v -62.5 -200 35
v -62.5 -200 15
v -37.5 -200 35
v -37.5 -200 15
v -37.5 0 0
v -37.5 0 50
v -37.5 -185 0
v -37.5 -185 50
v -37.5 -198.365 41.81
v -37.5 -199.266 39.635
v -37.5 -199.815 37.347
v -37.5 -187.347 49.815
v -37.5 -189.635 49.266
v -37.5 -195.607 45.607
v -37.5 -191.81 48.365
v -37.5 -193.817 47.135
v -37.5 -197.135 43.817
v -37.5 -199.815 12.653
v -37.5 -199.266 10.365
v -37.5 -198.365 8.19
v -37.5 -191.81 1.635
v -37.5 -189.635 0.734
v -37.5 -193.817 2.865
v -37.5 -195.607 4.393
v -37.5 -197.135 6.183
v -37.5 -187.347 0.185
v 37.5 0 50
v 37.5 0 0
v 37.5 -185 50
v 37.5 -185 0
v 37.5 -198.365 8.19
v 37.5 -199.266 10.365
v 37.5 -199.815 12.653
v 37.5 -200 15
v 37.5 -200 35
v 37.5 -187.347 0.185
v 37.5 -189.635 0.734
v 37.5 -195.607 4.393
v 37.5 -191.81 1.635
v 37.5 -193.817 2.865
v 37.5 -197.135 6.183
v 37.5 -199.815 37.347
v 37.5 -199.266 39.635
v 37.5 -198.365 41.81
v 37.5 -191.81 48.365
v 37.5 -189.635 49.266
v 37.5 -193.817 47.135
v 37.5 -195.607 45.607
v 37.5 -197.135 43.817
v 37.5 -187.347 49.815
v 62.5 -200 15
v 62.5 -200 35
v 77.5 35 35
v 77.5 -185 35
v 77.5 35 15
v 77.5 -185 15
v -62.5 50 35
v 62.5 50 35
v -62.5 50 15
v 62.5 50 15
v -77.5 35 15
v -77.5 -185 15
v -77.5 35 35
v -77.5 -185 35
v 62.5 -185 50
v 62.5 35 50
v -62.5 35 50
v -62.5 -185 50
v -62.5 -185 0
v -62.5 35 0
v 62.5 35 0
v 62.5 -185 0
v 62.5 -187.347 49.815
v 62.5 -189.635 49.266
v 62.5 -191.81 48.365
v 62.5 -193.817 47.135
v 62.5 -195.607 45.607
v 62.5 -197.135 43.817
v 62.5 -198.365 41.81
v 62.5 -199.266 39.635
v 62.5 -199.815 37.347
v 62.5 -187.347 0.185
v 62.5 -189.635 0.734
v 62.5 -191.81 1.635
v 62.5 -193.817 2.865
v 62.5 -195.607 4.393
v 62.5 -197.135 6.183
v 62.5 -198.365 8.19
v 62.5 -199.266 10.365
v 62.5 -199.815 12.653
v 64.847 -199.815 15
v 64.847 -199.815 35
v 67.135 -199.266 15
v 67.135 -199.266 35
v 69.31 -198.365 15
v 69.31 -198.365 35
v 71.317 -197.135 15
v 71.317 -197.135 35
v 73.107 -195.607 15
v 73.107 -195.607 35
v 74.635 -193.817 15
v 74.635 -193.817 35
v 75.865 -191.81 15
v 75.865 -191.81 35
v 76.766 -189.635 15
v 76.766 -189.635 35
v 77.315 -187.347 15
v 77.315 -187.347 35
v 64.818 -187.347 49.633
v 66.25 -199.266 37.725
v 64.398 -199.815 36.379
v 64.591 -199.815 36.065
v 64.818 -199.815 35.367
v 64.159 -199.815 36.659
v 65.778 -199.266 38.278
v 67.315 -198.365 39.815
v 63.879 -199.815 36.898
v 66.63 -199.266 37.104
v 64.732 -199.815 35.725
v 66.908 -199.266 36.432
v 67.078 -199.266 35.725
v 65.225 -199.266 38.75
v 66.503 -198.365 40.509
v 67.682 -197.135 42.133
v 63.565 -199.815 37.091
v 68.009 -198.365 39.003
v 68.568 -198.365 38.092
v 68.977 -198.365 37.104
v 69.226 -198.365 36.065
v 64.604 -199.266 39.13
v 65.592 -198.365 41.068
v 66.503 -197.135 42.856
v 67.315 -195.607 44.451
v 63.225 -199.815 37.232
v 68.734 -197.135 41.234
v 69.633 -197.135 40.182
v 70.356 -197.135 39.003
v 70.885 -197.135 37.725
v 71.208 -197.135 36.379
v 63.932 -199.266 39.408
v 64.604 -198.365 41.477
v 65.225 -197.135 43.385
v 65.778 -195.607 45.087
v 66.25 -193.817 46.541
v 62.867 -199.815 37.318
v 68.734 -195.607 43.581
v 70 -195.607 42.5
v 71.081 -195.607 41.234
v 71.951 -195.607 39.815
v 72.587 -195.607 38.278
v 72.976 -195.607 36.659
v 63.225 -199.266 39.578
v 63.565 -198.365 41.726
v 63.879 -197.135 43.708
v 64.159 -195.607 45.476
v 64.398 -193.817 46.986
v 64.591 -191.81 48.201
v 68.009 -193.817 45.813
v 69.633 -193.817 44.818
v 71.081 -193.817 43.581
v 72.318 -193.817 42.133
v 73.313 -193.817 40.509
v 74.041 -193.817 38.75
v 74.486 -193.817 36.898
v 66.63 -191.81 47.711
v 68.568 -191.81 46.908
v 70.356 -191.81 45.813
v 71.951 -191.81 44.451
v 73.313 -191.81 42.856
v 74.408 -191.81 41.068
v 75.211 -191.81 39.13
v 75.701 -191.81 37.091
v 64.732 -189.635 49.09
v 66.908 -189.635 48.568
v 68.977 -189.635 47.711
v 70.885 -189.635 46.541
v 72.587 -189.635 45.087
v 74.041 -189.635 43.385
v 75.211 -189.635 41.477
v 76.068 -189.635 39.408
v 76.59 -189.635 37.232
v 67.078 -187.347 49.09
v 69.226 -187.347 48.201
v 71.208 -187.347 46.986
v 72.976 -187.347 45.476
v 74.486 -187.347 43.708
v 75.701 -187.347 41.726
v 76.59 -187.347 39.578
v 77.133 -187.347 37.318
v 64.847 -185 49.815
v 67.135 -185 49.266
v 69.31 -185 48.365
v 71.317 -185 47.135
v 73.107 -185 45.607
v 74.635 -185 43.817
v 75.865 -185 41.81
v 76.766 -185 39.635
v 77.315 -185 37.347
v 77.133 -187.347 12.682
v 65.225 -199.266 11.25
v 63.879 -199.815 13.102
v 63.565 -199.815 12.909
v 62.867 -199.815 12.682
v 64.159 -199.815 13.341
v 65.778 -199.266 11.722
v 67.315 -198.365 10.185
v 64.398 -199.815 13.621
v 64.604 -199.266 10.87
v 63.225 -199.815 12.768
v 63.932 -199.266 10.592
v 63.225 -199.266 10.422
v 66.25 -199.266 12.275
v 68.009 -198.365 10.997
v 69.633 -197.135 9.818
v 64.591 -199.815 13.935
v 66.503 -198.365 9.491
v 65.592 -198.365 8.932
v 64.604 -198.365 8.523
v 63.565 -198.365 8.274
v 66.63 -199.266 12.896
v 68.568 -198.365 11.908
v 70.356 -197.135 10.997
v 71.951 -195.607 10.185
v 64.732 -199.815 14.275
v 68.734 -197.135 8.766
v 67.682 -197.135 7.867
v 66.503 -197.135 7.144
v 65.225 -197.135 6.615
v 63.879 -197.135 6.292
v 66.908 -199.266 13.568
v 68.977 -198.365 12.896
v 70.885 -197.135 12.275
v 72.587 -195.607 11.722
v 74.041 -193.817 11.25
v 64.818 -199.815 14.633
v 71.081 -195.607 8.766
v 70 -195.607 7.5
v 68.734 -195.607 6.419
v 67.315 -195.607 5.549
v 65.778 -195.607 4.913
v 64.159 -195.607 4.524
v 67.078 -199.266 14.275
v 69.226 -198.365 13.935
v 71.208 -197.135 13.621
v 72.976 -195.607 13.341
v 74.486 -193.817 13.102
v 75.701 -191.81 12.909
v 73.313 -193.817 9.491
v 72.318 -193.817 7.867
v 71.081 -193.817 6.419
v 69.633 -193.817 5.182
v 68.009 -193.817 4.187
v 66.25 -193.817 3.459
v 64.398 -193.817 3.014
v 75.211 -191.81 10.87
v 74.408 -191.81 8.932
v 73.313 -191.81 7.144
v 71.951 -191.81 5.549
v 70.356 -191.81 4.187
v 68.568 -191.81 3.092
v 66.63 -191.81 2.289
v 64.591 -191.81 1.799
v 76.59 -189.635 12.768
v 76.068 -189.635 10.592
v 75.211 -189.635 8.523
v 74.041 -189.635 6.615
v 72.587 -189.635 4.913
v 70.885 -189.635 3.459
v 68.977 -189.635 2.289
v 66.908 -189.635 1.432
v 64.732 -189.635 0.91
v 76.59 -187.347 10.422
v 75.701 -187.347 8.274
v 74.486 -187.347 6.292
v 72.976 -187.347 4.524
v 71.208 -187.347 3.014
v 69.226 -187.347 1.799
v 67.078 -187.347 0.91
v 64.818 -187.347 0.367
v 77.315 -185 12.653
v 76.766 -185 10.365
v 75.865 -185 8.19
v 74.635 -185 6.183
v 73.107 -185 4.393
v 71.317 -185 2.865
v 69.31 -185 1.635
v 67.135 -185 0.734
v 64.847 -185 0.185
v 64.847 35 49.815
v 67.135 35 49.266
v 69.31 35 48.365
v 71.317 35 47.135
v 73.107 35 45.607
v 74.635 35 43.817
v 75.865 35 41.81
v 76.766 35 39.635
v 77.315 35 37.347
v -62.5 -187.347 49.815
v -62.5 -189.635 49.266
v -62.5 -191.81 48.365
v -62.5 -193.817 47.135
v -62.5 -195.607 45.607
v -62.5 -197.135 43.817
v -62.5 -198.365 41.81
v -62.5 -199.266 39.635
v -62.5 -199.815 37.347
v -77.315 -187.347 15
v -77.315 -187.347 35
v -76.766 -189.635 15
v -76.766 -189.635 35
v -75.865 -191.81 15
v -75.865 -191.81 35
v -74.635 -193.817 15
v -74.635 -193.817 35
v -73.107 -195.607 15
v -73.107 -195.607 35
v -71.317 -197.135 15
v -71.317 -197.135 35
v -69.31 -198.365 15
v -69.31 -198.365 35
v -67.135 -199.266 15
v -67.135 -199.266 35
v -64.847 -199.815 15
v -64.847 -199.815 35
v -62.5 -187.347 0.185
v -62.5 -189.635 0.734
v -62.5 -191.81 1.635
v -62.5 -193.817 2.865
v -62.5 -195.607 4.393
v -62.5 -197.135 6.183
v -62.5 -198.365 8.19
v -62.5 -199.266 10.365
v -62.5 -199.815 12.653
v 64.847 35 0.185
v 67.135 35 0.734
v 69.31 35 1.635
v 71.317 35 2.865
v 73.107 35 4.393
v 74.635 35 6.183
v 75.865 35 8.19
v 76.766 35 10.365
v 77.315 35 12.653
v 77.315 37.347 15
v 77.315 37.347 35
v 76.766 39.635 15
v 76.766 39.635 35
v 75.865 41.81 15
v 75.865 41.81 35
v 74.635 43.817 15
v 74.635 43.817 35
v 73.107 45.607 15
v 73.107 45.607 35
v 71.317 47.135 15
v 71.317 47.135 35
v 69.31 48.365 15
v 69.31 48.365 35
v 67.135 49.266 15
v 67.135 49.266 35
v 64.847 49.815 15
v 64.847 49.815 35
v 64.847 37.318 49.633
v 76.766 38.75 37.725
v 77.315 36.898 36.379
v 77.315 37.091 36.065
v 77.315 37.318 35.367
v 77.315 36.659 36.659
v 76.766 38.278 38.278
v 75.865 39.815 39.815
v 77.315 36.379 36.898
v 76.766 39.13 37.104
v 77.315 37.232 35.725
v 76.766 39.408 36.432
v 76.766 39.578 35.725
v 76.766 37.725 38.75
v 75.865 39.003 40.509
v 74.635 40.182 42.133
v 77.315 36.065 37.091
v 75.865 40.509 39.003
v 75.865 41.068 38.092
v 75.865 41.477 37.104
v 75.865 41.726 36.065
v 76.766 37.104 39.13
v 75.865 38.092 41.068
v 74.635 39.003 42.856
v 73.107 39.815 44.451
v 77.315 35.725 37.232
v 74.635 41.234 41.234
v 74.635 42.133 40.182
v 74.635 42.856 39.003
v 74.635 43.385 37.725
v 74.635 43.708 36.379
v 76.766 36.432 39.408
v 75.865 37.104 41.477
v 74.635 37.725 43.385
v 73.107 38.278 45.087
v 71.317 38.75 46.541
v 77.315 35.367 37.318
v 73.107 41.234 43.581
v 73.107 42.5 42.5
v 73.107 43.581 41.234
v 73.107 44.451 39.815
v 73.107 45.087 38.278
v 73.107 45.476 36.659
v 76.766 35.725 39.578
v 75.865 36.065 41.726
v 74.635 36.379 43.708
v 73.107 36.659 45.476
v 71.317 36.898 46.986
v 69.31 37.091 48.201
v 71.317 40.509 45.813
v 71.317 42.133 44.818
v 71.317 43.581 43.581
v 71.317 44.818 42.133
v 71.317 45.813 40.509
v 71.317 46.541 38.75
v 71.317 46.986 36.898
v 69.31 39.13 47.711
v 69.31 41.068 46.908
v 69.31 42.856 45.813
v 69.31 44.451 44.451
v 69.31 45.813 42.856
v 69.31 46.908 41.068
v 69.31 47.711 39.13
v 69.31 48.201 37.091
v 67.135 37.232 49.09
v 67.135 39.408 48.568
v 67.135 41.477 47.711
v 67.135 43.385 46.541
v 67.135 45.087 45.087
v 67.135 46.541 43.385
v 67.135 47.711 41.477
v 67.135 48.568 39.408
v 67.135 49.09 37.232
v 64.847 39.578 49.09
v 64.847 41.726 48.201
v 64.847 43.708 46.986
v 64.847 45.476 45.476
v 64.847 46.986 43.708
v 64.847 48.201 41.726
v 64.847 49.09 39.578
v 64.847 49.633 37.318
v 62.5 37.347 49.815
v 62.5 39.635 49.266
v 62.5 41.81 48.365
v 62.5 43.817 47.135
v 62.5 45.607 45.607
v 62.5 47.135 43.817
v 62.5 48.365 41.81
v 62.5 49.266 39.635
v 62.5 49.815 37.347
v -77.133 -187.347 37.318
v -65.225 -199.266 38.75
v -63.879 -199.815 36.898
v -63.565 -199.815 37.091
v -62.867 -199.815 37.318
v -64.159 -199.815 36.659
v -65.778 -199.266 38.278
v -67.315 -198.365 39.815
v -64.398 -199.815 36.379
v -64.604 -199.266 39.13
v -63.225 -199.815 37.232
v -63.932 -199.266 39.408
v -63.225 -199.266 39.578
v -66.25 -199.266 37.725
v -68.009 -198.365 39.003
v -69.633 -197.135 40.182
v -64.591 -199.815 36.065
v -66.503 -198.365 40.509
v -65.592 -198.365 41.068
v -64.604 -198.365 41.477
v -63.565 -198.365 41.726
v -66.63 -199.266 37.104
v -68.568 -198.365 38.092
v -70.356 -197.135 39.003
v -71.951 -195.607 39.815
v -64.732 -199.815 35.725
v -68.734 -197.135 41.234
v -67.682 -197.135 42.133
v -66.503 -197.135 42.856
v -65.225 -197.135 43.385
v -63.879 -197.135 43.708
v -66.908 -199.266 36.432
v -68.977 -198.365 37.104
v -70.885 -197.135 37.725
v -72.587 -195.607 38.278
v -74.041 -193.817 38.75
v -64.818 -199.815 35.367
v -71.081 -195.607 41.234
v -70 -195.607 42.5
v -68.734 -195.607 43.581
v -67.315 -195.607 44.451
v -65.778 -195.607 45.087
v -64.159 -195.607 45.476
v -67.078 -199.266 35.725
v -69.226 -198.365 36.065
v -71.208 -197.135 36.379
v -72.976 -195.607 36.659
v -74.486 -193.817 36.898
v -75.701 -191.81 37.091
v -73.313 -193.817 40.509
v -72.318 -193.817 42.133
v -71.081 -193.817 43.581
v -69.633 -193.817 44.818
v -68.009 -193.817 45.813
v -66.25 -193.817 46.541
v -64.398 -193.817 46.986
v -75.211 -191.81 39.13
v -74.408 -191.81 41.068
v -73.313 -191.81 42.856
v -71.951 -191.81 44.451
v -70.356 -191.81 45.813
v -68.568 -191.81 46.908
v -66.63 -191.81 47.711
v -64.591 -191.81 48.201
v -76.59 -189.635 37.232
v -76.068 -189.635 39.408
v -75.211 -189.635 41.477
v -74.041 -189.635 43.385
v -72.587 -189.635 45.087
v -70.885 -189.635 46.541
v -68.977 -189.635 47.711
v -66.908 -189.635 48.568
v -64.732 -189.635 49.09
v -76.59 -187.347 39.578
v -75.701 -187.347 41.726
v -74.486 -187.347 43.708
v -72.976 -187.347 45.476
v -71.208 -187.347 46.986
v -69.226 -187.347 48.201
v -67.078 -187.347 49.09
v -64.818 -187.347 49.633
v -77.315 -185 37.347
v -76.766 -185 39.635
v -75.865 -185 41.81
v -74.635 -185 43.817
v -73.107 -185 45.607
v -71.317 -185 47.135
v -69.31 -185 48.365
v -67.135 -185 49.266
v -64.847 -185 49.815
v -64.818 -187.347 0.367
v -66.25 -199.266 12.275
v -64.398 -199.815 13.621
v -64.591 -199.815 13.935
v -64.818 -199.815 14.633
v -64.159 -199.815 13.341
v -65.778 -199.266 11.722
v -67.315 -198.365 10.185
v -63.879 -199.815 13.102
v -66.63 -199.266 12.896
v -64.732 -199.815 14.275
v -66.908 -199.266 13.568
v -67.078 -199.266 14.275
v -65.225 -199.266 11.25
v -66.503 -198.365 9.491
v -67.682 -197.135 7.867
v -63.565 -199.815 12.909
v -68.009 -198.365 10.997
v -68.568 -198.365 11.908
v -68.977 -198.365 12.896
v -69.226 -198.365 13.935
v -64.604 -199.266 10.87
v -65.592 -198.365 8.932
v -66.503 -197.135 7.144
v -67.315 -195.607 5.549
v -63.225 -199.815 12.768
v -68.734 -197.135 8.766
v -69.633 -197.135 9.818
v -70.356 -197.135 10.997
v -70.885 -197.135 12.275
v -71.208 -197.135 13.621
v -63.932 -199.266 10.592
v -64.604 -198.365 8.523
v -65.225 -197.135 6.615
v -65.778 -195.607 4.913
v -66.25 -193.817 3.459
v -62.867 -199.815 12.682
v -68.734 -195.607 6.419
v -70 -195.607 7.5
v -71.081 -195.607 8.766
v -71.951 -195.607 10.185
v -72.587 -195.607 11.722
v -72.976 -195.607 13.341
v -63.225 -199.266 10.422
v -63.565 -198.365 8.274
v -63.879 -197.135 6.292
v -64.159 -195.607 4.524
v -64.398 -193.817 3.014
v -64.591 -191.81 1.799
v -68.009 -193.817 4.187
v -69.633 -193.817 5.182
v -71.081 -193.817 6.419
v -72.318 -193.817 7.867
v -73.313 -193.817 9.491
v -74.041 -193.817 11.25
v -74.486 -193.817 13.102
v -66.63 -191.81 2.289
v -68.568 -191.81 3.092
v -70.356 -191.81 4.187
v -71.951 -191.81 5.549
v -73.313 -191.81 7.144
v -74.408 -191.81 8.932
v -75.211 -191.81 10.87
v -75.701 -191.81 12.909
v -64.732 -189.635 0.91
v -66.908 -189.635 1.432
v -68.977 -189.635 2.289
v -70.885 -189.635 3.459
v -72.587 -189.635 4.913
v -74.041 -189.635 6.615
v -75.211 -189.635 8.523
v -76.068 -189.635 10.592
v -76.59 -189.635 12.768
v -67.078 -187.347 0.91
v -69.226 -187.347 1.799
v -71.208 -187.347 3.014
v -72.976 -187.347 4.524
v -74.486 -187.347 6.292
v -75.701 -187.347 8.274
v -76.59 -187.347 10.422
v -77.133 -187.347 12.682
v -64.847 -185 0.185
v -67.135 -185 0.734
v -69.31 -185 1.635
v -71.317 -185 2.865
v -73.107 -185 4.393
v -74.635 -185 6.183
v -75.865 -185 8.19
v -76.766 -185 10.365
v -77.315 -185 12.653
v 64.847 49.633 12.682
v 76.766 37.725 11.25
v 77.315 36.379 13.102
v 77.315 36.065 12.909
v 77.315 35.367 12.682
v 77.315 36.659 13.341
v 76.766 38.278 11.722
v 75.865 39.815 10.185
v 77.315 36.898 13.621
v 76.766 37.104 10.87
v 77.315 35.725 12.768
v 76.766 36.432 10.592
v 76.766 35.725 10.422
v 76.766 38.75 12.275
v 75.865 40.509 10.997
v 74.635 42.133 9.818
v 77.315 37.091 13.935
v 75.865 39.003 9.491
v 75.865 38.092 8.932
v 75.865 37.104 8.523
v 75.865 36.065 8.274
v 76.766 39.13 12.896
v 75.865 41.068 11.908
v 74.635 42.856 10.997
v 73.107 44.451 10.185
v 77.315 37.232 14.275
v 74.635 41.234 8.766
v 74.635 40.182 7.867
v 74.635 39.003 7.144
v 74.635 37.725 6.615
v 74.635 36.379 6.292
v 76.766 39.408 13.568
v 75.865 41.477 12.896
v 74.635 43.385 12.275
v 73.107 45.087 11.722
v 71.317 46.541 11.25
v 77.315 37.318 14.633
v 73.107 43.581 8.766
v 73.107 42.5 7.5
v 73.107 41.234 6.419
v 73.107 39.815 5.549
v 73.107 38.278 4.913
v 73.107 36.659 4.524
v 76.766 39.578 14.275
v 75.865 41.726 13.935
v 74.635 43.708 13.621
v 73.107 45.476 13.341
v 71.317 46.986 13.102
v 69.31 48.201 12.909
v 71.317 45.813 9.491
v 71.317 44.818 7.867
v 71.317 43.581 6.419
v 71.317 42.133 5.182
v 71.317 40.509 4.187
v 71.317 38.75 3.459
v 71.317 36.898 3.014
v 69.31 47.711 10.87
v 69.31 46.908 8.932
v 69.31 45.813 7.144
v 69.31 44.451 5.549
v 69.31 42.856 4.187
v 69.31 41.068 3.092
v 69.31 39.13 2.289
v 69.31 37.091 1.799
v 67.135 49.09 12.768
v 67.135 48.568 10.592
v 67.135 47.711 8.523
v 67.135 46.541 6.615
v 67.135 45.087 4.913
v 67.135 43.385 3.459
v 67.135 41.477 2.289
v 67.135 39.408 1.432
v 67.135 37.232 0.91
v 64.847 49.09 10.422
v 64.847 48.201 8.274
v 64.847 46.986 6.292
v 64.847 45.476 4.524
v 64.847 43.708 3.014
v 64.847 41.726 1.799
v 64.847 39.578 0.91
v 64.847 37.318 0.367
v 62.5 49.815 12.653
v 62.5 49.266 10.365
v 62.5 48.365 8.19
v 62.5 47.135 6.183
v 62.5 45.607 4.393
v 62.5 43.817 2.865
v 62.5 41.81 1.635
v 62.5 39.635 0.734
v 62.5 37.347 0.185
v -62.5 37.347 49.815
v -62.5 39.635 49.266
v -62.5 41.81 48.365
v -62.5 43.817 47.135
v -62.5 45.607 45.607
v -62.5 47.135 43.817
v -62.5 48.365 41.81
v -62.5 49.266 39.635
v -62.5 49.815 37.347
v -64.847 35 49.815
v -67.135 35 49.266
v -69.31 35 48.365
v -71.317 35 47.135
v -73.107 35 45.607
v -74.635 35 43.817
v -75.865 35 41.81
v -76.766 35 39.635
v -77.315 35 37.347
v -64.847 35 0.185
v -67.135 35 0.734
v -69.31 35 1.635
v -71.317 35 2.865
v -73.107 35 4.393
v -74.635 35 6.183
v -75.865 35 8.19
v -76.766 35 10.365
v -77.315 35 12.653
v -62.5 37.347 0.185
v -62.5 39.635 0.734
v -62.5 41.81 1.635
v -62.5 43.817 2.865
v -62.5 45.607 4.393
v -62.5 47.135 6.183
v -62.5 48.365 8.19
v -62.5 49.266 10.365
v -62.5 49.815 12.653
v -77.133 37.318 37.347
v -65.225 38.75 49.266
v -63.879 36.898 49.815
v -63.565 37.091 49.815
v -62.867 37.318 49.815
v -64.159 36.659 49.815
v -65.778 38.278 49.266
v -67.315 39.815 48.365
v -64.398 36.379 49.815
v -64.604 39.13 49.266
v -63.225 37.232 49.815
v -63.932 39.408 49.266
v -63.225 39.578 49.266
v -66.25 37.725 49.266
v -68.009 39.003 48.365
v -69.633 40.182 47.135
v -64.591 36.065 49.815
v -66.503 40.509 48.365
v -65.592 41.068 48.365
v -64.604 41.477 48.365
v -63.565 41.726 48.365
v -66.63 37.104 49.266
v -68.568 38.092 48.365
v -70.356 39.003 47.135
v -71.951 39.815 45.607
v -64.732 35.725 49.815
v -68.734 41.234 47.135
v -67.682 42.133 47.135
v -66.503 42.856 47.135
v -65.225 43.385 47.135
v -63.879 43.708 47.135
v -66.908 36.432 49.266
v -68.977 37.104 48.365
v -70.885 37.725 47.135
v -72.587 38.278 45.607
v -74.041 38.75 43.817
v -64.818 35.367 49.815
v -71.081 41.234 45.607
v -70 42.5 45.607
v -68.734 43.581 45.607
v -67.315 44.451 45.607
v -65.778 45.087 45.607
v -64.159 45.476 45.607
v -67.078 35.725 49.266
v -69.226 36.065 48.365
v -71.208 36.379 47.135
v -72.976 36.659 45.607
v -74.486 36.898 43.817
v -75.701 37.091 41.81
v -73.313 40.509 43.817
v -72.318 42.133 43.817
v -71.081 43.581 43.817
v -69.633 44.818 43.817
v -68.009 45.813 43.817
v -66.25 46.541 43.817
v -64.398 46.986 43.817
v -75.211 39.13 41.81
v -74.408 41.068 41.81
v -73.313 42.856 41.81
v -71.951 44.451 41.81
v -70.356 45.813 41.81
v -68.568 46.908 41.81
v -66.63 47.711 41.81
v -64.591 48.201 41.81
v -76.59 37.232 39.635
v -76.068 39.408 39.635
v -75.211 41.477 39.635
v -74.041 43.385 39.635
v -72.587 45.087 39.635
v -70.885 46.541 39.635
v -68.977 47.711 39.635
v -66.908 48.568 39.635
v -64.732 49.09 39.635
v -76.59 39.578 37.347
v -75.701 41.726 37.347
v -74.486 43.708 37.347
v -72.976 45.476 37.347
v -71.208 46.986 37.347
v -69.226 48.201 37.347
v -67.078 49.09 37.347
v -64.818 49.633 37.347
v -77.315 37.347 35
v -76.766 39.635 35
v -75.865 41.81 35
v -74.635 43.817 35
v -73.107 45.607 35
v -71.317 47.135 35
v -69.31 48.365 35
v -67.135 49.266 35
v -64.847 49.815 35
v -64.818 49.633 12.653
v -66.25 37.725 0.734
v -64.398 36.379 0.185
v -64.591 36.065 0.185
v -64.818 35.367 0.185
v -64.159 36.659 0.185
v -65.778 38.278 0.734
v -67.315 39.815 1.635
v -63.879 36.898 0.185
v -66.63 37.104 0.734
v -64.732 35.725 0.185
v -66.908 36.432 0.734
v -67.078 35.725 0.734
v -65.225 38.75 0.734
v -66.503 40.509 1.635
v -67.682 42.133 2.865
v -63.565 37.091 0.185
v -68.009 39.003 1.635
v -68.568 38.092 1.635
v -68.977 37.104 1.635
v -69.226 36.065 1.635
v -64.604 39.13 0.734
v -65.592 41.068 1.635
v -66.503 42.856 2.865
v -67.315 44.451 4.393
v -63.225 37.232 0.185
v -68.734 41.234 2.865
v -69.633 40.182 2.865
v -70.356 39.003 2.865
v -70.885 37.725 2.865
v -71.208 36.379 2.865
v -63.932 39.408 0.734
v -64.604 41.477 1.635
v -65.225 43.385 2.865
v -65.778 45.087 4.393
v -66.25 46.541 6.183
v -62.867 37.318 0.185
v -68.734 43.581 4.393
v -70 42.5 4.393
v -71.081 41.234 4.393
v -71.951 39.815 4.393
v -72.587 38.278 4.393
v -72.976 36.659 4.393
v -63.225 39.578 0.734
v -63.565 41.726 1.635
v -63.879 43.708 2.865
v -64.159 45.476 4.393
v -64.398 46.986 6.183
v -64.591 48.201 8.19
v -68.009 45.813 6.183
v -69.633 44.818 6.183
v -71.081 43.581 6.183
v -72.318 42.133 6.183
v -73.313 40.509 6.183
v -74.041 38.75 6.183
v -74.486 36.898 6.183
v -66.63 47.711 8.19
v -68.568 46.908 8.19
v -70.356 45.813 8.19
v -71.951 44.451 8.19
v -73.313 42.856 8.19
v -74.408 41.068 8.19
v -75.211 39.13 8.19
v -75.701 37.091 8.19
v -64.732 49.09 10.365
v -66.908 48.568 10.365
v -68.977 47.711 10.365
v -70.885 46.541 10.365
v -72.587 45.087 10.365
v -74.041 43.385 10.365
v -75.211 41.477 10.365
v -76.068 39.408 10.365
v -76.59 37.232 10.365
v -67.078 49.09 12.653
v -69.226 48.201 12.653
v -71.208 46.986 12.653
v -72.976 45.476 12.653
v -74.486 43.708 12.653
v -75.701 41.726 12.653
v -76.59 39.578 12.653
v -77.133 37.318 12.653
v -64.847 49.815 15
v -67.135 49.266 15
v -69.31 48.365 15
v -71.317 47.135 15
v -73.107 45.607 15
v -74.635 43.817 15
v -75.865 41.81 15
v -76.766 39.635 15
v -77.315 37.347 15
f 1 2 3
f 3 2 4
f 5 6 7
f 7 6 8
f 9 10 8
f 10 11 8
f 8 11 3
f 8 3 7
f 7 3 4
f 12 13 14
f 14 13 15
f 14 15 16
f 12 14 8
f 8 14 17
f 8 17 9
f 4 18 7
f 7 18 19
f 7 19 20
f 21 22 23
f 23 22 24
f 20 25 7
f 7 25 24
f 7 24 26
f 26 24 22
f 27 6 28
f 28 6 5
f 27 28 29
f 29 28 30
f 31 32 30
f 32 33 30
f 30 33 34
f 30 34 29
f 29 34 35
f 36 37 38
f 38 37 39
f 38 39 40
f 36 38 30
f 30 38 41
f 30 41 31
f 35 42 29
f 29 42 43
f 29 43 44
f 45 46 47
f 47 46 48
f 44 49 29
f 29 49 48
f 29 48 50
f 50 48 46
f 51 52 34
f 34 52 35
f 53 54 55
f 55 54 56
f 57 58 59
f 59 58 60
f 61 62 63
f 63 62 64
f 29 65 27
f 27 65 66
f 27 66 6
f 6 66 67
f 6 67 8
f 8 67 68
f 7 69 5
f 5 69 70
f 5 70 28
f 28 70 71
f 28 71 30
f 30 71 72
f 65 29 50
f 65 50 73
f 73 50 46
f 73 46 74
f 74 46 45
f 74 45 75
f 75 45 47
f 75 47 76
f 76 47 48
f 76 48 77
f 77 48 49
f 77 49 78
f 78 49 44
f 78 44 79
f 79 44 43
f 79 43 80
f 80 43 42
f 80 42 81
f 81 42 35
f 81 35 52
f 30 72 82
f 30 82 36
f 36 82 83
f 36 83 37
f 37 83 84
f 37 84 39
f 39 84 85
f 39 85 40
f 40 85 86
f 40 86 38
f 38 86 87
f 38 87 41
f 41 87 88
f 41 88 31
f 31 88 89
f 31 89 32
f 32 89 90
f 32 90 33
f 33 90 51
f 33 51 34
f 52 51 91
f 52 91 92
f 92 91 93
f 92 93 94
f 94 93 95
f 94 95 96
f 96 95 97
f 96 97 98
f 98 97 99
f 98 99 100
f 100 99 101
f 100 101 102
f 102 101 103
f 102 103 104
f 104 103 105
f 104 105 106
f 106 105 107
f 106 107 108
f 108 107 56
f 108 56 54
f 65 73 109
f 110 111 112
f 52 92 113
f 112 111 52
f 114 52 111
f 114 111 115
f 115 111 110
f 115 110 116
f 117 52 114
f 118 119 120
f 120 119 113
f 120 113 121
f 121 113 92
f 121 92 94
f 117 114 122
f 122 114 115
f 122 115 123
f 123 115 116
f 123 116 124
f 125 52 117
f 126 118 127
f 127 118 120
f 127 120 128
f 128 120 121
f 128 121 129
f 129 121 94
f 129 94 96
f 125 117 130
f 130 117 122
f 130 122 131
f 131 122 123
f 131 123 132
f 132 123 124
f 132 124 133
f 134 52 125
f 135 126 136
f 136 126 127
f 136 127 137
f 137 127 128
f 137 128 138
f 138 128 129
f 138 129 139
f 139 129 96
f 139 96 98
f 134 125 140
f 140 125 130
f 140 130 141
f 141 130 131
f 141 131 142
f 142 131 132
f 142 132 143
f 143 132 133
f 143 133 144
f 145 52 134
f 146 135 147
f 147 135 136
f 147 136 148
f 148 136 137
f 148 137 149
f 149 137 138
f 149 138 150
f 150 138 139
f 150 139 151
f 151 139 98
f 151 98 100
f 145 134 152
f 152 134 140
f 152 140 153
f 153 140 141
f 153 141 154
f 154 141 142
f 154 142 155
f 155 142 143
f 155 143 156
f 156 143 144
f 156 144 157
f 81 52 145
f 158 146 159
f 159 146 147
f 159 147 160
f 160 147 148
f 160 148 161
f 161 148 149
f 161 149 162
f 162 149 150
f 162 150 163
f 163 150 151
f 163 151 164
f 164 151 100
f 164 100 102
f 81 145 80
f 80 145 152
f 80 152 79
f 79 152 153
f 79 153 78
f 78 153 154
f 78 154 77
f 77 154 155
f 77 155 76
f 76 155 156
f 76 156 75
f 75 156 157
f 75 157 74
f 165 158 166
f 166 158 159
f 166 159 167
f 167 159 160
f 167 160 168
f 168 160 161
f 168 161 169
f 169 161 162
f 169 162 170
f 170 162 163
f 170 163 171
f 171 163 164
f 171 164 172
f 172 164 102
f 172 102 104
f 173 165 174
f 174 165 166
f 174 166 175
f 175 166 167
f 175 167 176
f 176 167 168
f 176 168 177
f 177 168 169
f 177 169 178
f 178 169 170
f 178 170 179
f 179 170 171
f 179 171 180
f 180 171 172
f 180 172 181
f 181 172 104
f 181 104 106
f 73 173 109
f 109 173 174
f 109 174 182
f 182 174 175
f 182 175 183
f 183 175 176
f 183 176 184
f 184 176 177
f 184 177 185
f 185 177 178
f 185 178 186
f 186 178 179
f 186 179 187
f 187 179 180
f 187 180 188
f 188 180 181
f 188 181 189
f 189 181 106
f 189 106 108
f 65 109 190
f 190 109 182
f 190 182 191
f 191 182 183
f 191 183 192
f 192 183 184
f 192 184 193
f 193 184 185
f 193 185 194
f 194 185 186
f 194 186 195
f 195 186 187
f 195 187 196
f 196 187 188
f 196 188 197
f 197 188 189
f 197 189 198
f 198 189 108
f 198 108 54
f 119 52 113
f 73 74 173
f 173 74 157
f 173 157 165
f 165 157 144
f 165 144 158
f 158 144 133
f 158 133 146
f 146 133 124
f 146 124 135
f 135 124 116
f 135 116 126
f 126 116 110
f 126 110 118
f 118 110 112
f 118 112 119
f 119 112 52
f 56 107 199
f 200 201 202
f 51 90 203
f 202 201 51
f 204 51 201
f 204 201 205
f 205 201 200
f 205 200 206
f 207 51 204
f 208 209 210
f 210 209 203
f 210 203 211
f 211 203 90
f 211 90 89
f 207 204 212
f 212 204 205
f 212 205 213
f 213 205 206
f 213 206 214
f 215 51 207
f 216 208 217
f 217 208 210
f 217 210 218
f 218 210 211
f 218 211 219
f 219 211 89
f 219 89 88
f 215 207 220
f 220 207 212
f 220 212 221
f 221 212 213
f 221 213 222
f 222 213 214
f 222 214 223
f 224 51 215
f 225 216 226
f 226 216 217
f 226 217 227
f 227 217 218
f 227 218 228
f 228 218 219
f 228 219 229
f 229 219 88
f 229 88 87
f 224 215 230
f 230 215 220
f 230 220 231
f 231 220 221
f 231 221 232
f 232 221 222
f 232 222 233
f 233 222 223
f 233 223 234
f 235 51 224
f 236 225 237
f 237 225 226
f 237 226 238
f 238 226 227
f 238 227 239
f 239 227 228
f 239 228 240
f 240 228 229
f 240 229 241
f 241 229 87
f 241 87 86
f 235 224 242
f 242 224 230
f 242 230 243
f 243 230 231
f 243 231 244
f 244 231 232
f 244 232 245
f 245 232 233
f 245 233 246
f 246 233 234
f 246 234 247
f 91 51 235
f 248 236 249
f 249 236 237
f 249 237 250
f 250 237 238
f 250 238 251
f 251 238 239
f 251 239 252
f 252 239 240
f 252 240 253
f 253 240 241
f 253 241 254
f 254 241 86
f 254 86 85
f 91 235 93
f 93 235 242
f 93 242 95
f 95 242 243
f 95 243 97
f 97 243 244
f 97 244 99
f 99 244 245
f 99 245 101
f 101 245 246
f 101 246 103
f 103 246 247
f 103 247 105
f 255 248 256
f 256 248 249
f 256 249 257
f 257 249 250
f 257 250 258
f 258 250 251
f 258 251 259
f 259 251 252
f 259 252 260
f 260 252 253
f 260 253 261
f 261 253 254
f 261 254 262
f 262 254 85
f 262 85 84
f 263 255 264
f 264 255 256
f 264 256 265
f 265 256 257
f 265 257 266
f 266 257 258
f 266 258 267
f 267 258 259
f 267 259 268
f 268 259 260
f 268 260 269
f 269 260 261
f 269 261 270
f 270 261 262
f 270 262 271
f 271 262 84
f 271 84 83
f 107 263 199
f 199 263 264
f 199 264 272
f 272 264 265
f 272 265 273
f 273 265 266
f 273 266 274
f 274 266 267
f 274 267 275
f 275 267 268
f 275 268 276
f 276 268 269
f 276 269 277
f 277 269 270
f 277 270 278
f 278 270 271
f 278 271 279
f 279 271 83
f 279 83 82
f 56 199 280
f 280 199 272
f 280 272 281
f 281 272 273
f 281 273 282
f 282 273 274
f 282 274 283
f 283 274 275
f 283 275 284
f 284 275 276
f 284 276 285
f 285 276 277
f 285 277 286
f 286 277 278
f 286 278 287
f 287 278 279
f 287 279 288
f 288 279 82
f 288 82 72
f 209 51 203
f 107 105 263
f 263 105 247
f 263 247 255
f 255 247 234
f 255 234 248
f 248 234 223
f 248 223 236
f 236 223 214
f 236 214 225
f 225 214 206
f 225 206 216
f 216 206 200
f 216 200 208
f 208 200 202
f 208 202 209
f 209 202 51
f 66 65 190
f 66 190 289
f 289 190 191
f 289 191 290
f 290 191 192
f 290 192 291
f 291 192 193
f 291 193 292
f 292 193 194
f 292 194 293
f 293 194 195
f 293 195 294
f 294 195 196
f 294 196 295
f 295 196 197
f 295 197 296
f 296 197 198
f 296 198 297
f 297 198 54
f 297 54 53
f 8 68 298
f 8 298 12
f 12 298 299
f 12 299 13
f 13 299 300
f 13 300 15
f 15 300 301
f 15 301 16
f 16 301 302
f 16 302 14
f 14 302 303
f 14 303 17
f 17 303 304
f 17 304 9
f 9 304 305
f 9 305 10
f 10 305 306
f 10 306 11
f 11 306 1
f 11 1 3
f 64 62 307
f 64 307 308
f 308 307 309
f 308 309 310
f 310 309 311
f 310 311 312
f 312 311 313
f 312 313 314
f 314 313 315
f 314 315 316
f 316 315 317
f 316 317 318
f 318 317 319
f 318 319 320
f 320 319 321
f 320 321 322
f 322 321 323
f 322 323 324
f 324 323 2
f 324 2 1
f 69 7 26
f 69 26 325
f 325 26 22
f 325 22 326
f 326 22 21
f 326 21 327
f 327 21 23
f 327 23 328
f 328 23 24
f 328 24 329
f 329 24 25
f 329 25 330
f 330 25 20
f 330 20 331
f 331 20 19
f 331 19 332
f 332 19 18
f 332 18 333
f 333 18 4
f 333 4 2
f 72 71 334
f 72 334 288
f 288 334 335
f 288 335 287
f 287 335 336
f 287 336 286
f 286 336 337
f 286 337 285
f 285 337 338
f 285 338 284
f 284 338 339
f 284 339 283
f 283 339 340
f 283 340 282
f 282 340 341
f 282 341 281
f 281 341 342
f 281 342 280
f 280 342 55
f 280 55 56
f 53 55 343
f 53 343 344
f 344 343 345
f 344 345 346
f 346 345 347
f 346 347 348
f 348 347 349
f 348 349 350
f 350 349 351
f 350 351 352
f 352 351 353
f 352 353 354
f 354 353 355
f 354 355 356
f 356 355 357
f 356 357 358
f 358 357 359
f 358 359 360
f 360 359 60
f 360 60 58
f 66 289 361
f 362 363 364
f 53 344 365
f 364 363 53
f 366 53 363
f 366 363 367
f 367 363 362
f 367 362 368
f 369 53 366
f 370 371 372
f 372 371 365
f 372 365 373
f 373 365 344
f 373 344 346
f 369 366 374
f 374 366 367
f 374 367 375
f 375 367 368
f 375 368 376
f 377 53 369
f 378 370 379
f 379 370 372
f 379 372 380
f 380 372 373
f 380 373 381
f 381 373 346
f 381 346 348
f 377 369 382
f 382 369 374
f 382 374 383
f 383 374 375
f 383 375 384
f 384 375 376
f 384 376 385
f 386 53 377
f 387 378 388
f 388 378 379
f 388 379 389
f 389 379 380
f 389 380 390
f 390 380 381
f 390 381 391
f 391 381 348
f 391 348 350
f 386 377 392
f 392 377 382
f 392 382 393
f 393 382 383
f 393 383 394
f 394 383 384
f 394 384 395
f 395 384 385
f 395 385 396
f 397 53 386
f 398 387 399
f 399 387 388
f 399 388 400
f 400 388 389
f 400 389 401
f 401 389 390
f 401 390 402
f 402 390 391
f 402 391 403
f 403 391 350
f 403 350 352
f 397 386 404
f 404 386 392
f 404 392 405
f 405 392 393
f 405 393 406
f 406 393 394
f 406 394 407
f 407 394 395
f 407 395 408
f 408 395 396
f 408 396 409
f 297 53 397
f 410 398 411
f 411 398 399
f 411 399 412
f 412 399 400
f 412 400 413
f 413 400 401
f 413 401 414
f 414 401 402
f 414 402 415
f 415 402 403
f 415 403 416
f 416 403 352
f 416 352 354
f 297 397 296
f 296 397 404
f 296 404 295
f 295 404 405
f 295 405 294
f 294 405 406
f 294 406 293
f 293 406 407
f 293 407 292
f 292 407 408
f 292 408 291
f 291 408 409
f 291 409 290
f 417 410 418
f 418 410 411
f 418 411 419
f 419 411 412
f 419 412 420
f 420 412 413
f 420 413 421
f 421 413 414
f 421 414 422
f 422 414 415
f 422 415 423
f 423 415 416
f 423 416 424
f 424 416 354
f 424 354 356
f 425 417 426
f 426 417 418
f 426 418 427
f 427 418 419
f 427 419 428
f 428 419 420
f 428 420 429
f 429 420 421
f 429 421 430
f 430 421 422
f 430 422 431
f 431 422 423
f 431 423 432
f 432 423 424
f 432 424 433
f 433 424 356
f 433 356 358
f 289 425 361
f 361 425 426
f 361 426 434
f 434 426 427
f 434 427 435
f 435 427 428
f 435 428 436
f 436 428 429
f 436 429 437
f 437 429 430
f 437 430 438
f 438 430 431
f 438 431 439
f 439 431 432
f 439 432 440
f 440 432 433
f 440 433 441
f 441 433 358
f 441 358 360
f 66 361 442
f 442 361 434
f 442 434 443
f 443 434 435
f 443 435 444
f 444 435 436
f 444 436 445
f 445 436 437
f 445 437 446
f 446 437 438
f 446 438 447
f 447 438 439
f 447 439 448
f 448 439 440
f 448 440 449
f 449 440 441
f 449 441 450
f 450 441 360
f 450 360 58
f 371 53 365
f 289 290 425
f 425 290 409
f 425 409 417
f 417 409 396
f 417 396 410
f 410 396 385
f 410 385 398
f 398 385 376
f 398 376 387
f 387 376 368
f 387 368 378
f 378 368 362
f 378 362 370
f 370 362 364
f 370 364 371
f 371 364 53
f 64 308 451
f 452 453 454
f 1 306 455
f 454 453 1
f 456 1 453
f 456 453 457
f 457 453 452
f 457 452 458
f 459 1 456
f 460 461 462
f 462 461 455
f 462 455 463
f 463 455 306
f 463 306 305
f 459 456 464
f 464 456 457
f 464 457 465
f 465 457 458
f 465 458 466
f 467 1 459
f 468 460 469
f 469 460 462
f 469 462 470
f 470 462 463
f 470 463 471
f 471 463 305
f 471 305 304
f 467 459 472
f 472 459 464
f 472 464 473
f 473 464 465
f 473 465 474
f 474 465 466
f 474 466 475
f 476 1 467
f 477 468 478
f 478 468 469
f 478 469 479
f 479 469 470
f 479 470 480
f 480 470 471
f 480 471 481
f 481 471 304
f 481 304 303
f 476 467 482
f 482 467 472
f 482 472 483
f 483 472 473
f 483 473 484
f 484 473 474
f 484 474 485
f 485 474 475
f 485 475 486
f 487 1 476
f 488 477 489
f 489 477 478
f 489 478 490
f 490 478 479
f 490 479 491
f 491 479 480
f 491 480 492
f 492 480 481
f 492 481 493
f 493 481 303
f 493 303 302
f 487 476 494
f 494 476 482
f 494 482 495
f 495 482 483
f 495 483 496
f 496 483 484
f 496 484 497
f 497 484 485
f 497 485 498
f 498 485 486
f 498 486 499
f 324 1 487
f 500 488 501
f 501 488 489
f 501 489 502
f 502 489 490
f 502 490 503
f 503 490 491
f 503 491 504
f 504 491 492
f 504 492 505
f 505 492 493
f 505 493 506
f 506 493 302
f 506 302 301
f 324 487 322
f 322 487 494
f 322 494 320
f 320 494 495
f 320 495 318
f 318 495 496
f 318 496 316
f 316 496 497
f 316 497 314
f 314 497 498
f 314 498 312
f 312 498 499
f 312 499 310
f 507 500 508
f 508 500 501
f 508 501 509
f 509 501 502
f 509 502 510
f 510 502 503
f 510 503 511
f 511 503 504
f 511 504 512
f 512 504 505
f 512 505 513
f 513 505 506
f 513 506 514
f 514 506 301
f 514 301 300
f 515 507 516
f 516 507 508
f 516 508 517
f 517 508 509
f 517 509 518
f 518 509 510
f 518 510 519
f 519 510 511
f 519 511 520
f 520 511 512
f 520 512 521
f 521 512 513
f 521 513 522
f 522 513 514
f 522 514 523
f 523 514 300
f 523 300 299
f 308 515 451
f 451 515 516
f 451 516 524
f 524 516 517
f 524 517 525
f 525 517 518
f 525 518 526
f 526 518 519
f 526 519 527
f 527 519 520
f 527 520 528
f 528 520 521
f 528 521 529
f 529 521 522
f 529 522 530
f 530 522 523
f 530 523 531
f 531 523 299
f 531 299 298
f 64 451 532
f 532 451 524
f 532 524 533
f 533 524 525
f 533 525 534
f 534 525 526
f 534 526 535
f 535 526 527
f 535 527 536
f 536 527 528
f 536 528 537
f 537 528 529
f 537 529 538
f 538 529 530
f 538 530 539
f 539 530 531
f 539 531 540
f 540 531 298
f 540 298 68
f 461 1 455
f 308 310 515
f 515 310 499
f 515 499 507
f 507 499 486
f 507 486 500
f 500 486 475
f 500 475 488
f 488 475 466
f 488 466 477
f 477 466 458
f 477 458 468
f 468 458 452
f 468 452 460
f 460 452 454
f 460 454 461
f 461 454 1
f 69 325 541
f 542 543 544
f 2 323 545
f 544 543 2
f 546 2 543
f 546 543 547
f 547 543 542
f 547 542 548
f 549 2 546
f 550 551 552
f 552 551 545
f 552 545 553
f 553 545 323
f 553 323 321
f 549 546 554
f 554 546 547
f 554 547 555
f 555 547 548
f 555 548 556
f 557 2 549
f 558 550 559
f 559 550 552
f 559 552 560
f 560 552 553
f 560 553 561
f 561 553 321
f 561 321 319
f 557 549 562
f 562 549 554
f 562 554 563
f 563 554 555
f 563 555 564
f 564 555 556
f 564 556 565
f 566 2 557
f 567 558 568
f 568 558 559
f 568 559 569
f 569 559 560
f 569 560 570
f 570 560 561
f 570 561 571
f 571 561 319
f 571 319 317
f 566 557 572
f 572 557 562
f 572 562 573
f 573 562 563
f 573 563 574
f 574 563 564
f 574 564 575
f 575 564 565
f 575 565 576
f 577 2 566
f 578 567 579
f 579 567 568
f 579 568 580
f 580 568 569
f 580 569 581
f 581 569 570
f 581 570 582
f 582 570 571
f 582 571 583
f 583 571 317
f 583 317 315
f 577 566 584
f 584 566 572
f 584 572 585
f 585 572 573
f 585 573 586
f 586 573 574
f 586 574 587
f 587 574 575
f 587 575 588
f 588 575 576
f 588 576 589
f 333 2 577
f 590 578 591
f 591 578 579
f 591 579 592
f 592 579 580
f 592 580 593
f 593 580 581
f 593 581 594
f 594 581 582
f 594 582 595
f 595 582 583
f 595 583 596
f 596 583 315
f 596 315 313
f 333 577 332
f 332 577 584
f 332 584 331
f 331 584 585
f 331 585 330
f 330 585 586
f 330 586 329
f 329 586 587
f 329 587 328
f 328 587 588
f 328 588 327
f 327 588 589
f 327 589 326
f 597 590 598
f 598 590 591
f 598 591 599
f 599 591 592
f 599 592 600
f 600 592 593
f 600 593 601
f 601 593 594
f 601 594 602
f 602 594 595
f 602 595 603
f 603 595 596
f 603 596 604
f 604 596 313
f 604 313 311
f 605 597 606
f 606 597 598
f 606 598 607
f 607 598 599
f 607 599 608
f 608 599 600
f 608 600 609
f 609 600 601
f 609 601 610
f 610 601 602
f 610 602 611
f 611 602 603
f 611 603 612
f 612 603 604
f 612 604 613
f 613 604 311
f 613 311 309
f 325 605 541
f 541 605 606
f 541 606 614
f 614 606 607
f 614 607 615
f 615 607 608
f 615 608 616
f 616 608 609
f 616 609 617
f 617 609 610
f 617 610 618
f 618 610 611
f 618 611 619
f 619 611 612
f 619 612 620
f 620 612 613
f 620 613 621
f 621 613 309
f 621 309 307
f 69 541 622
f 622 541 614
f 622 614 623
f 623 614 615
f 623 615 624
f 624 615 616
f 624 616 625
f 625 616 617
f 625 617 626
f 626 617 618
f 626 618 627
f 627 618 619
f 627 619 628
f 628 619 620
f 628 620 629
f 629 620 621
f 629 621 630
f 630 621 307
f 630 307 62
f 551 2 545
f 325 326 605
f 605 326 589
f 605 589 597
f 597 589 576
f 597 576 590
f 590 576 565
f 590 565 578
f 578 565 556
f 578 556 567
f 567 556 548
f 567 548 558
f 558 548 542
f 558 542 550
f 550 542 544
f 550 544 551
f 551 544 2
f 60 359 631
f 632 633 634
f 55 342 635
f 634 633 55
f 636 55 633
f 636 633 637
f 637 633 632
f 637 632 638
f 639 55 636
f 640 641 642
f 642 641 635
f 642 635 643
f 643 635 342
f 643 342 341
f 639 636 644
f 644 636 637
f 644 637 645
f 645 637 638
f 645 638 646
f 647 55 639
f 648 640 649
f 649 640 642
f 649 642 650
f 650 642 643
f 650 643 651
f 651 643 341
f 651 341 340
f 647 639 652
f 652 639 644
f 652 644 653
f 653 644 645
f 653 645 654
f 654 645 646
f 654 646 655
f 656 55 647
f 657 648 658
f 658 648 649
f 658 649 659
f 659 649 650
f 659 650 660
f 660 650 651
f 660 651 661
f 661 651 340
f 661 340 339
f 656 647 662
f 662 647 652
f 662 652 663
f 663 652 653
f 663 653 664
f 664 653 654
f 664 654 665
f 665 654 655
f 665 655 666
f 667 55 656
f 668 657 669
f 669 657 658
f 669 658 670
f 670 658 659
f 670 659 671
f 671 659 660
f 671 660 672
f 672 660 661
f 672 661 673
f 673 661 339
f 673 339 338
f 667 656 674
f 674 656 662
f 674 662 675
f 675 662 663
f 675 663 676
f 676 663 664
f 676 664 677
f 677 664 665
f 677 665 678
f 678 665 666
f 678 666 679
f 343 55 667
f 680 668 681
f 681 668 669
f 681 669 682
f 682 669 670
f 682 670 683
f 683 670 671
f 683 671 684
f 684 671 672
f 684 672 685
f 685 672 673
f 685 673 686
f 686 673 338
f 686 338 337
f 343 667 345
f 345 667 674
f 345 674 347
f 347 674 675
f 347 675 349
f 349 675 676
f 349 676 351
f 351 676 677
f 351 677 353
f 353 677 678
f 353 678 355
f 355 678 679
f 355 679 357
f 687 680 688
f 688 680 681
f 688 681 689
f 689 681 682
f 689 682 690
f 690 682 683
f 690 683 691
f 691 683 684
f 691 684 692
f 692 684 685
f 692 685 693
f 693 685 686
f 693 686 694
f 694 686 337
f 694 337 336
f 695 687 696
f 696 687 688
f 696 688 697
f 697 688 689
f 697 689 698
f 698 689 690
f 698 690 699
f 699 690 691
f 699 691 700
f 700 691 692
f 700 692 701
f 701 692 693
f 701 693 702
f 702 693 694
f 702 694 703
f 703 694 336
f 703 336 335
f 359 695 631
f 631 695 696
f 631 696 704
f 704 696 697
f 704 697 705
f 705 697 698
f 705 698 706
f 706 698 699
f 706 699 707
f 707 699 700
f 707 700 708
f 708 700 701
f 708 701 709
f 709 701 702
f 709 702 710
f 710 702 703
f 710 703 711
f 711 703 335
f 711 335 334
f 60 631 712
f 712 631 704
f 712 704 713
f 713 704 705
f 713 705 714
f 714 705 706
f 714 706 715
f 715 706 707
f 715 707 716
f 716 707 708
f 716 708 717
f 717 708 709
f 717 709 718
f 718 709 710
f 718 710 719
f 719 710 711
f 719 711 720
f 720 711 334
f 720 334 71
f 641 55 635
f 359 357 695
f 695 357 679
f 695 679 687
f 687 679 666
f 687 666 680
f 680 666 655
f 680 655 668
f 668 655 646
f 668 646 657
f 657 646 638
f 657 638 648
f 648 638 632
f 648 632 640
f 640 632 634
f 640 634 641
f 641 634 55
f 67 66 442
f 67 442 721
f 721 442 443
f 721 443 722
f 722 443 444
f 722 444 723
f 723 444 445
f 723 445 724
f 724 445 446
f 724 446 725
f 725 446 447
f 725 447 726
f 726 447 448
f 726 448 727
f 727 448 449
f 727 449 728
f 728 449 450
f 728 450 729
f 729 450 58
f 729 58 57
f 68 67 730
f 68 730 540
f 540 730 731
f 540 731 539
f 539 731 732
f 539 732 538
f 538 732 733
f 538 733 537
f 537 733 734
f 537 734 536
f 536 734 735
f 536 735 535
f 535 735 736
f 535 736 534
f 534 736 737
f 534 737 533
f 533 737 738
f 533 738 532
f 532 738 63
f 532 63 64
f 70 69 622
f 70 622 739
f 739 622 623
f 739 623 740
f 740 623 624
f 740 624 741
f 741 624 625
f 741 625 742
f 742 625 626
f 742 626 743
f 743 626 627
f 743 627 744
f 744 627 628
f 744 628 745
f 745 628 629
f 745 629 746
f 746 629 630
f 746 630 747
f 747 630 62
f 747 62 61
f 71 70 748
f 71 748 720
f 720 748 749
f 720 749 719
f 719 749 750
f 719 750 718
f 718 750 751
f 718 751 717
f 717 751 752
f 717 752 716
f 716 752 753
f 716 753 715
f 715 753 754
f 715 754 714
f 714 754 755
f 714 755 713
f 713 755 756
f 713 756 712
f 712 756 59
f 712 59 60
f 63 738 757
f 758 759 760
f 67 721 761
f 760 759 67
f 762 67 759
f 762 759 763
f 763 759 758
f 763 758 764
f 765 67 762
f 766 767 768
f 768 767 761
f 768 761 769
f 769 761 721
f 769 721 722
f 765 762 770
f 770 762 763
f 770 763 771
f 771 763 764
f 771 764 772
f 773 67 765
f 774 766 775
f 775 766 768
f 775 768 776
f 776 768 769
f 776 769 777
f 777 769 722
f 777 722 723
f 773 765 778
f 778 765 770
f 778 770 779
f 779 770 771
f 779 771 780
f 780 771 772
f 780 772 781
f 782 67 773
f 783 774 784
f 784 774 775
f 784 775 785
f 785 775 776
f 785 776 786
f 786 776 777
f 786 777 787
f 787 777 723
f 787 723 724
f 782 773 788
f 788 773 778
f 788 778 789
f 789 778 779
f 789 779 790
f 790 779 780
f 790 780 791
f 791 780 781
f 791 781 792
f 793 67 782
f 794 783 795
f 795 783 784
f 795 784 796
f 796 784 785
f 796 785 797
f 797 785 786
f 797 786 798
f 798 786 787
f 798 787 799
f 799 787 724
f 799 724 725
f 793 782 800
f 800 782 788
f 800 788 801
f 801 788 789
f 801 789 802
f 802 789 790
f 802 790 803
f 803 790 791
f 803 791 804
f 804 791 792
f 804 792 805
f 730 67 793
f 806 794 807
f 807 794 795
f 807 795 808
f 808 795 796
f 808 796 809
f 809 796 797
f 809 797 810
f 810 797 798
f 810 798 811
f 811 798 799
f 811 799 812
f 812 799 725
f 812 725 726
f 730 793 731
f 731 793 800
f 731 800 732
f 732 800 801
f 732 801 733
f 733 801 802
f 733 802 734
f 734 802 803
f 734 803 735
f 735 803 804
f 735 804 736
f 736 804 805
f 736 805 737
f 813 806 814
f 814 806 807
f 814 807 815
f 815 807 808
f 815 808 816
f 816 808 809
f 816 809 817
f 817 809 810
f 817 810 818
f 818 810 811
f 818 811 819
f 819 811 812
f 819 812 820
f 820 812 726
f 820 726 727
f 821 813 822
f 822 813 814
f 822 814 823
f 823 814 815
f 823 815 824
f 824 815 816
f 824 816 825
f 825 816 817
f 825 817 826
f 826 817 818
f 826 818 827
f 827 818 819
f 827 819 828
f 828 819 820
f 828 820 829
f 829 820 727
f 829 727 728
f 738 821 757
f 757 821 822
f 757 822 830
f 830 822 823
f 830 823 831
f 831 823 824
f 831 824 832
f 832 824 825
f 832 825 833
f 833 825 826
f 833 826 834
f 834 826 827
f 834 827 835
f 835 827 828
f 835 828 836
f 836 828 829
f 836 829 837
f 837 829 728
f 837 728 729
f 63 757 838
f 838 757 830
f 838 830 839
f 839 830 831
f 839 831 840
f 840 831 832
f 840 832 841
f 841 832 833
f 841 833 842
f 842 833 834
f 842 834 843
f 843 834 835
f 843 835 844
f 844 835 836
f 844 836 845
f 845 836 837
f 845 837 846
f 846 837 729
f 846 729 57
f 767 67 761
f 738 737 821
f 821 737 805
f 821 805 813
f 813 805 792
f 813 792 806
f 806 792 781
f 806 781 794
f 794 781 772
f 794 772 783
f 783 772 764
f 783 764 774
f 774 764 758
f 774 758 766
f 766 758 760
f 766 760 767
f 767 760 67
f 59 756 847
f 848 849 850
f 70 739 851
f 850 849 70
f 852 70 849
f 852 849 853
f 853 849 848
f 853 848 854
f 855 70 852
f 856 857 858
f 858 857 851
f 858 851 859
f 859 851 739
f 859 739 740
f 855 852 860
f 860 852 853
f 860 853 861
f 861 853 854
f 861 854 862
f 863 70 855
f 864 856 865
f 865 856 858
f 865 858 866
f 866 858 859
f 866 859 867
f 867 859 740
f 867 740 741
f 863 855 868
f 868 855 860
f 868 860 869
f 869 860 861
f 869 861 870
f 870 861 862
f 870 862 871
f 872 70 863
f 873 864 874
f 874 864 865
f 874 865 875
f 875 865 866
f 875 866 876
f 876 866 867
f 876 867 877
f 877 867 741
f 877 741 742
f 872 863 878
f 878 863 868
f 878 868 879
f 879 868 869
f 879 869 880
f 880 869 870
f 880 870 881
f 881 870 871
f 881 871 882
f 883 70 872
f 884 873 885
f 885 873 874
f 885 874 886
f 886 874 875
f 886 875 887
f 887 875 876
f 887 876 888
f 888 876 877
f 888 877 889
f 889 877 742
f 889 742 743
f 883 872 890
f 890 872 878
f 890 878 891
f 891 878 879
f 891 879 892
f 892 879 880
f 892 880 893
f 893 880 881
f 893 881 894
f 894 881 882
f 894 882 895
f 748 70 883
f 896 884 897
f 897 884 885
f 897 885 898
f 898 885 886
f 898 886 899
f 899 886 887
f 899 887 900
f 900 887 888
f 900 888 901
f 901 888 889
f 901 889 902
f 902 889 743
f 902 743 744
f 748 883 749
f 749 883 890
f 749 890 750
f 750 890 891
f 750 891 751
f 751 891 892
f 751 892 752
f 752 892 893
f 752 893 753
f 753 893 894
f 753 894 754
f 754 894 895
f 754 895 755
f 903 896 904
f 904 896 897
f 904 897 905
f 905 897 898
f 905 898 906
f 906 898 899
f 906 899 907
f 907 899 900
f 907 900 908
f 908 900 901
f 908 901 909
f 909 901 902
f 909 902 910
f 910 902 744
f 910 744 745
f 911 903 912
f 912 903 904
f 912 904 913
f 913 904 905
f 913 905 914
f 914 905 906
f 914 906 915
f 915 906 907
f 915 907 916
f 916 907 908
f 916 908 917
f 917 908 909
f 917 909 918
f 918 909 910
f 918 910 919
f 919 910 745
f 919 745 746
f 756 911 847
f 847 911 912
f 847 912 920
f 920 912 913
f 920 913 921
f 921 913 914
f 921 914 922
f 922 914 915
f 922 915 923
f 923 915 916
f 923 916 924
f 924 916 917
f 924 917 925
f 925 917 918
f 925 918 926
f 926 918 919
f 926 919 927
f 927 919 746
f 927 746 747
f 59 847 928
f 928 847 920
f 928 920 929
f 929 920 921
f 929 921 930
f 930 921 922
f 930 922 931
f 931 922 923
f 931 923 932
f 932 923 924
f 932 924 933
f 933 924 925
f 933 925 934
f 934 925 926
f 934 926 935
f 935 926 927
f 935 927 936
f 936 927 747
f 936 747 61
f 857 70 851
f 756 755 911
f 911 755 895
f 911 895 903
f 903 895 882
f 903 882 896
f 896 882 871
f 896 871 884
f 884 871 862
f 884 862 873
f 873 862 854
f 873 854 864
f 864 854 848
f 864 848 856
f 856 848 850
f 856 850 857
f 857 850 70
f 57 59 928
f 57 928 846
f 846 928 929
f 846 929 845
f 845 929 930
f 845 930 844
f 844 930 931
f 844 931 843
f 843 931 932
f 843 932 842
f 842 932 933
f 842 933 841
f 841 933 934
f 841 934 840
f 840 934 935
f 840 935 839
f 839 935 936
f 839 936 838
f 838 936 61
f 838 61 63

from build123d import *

# Parameters (mm, degrees)
BOSS_EXTRUDE1_DEPTH = 50
FILLET1_R           = 15


with BuildPart() as part:
    # Sketch1 → Boss-Extrude1 (new body)
    with BuildSketch(Plane.XY):
        Polygon((-37.5, -200), (-37.5, 0), (37.5, 0), (37.5, -200), (77.5, -200), (77.5, 50), (-77.5, 50), (-77.5, -200), align=None)
    extrude(amount=BOSS_EXTRUDE1_DEPTH)

    # Fillet1
    fillet1_edges = [part.edges().sort_by_distance(p)[0] for p in [
        (-57.5, -200, 0),
        (-77.5, -200, 25),
        (-77.5, 50, 25),
        (77.5, 50, 25),
        (77.5, -200, 25),
        (57.5, -200, 50),
        (77.5, -75, 50),
        (0, 50, 50),
        (-77.5, -75, 50),
        (-57.5, -200, 50),
        (-77.5, -75, 0),
        (0, 50, 0),
        (77.5, -75, 0),
        (57.5, -200, 0),
    ]]
    fillet(fillet1_edges, radius=FILLET1_R)


solid = part.part
